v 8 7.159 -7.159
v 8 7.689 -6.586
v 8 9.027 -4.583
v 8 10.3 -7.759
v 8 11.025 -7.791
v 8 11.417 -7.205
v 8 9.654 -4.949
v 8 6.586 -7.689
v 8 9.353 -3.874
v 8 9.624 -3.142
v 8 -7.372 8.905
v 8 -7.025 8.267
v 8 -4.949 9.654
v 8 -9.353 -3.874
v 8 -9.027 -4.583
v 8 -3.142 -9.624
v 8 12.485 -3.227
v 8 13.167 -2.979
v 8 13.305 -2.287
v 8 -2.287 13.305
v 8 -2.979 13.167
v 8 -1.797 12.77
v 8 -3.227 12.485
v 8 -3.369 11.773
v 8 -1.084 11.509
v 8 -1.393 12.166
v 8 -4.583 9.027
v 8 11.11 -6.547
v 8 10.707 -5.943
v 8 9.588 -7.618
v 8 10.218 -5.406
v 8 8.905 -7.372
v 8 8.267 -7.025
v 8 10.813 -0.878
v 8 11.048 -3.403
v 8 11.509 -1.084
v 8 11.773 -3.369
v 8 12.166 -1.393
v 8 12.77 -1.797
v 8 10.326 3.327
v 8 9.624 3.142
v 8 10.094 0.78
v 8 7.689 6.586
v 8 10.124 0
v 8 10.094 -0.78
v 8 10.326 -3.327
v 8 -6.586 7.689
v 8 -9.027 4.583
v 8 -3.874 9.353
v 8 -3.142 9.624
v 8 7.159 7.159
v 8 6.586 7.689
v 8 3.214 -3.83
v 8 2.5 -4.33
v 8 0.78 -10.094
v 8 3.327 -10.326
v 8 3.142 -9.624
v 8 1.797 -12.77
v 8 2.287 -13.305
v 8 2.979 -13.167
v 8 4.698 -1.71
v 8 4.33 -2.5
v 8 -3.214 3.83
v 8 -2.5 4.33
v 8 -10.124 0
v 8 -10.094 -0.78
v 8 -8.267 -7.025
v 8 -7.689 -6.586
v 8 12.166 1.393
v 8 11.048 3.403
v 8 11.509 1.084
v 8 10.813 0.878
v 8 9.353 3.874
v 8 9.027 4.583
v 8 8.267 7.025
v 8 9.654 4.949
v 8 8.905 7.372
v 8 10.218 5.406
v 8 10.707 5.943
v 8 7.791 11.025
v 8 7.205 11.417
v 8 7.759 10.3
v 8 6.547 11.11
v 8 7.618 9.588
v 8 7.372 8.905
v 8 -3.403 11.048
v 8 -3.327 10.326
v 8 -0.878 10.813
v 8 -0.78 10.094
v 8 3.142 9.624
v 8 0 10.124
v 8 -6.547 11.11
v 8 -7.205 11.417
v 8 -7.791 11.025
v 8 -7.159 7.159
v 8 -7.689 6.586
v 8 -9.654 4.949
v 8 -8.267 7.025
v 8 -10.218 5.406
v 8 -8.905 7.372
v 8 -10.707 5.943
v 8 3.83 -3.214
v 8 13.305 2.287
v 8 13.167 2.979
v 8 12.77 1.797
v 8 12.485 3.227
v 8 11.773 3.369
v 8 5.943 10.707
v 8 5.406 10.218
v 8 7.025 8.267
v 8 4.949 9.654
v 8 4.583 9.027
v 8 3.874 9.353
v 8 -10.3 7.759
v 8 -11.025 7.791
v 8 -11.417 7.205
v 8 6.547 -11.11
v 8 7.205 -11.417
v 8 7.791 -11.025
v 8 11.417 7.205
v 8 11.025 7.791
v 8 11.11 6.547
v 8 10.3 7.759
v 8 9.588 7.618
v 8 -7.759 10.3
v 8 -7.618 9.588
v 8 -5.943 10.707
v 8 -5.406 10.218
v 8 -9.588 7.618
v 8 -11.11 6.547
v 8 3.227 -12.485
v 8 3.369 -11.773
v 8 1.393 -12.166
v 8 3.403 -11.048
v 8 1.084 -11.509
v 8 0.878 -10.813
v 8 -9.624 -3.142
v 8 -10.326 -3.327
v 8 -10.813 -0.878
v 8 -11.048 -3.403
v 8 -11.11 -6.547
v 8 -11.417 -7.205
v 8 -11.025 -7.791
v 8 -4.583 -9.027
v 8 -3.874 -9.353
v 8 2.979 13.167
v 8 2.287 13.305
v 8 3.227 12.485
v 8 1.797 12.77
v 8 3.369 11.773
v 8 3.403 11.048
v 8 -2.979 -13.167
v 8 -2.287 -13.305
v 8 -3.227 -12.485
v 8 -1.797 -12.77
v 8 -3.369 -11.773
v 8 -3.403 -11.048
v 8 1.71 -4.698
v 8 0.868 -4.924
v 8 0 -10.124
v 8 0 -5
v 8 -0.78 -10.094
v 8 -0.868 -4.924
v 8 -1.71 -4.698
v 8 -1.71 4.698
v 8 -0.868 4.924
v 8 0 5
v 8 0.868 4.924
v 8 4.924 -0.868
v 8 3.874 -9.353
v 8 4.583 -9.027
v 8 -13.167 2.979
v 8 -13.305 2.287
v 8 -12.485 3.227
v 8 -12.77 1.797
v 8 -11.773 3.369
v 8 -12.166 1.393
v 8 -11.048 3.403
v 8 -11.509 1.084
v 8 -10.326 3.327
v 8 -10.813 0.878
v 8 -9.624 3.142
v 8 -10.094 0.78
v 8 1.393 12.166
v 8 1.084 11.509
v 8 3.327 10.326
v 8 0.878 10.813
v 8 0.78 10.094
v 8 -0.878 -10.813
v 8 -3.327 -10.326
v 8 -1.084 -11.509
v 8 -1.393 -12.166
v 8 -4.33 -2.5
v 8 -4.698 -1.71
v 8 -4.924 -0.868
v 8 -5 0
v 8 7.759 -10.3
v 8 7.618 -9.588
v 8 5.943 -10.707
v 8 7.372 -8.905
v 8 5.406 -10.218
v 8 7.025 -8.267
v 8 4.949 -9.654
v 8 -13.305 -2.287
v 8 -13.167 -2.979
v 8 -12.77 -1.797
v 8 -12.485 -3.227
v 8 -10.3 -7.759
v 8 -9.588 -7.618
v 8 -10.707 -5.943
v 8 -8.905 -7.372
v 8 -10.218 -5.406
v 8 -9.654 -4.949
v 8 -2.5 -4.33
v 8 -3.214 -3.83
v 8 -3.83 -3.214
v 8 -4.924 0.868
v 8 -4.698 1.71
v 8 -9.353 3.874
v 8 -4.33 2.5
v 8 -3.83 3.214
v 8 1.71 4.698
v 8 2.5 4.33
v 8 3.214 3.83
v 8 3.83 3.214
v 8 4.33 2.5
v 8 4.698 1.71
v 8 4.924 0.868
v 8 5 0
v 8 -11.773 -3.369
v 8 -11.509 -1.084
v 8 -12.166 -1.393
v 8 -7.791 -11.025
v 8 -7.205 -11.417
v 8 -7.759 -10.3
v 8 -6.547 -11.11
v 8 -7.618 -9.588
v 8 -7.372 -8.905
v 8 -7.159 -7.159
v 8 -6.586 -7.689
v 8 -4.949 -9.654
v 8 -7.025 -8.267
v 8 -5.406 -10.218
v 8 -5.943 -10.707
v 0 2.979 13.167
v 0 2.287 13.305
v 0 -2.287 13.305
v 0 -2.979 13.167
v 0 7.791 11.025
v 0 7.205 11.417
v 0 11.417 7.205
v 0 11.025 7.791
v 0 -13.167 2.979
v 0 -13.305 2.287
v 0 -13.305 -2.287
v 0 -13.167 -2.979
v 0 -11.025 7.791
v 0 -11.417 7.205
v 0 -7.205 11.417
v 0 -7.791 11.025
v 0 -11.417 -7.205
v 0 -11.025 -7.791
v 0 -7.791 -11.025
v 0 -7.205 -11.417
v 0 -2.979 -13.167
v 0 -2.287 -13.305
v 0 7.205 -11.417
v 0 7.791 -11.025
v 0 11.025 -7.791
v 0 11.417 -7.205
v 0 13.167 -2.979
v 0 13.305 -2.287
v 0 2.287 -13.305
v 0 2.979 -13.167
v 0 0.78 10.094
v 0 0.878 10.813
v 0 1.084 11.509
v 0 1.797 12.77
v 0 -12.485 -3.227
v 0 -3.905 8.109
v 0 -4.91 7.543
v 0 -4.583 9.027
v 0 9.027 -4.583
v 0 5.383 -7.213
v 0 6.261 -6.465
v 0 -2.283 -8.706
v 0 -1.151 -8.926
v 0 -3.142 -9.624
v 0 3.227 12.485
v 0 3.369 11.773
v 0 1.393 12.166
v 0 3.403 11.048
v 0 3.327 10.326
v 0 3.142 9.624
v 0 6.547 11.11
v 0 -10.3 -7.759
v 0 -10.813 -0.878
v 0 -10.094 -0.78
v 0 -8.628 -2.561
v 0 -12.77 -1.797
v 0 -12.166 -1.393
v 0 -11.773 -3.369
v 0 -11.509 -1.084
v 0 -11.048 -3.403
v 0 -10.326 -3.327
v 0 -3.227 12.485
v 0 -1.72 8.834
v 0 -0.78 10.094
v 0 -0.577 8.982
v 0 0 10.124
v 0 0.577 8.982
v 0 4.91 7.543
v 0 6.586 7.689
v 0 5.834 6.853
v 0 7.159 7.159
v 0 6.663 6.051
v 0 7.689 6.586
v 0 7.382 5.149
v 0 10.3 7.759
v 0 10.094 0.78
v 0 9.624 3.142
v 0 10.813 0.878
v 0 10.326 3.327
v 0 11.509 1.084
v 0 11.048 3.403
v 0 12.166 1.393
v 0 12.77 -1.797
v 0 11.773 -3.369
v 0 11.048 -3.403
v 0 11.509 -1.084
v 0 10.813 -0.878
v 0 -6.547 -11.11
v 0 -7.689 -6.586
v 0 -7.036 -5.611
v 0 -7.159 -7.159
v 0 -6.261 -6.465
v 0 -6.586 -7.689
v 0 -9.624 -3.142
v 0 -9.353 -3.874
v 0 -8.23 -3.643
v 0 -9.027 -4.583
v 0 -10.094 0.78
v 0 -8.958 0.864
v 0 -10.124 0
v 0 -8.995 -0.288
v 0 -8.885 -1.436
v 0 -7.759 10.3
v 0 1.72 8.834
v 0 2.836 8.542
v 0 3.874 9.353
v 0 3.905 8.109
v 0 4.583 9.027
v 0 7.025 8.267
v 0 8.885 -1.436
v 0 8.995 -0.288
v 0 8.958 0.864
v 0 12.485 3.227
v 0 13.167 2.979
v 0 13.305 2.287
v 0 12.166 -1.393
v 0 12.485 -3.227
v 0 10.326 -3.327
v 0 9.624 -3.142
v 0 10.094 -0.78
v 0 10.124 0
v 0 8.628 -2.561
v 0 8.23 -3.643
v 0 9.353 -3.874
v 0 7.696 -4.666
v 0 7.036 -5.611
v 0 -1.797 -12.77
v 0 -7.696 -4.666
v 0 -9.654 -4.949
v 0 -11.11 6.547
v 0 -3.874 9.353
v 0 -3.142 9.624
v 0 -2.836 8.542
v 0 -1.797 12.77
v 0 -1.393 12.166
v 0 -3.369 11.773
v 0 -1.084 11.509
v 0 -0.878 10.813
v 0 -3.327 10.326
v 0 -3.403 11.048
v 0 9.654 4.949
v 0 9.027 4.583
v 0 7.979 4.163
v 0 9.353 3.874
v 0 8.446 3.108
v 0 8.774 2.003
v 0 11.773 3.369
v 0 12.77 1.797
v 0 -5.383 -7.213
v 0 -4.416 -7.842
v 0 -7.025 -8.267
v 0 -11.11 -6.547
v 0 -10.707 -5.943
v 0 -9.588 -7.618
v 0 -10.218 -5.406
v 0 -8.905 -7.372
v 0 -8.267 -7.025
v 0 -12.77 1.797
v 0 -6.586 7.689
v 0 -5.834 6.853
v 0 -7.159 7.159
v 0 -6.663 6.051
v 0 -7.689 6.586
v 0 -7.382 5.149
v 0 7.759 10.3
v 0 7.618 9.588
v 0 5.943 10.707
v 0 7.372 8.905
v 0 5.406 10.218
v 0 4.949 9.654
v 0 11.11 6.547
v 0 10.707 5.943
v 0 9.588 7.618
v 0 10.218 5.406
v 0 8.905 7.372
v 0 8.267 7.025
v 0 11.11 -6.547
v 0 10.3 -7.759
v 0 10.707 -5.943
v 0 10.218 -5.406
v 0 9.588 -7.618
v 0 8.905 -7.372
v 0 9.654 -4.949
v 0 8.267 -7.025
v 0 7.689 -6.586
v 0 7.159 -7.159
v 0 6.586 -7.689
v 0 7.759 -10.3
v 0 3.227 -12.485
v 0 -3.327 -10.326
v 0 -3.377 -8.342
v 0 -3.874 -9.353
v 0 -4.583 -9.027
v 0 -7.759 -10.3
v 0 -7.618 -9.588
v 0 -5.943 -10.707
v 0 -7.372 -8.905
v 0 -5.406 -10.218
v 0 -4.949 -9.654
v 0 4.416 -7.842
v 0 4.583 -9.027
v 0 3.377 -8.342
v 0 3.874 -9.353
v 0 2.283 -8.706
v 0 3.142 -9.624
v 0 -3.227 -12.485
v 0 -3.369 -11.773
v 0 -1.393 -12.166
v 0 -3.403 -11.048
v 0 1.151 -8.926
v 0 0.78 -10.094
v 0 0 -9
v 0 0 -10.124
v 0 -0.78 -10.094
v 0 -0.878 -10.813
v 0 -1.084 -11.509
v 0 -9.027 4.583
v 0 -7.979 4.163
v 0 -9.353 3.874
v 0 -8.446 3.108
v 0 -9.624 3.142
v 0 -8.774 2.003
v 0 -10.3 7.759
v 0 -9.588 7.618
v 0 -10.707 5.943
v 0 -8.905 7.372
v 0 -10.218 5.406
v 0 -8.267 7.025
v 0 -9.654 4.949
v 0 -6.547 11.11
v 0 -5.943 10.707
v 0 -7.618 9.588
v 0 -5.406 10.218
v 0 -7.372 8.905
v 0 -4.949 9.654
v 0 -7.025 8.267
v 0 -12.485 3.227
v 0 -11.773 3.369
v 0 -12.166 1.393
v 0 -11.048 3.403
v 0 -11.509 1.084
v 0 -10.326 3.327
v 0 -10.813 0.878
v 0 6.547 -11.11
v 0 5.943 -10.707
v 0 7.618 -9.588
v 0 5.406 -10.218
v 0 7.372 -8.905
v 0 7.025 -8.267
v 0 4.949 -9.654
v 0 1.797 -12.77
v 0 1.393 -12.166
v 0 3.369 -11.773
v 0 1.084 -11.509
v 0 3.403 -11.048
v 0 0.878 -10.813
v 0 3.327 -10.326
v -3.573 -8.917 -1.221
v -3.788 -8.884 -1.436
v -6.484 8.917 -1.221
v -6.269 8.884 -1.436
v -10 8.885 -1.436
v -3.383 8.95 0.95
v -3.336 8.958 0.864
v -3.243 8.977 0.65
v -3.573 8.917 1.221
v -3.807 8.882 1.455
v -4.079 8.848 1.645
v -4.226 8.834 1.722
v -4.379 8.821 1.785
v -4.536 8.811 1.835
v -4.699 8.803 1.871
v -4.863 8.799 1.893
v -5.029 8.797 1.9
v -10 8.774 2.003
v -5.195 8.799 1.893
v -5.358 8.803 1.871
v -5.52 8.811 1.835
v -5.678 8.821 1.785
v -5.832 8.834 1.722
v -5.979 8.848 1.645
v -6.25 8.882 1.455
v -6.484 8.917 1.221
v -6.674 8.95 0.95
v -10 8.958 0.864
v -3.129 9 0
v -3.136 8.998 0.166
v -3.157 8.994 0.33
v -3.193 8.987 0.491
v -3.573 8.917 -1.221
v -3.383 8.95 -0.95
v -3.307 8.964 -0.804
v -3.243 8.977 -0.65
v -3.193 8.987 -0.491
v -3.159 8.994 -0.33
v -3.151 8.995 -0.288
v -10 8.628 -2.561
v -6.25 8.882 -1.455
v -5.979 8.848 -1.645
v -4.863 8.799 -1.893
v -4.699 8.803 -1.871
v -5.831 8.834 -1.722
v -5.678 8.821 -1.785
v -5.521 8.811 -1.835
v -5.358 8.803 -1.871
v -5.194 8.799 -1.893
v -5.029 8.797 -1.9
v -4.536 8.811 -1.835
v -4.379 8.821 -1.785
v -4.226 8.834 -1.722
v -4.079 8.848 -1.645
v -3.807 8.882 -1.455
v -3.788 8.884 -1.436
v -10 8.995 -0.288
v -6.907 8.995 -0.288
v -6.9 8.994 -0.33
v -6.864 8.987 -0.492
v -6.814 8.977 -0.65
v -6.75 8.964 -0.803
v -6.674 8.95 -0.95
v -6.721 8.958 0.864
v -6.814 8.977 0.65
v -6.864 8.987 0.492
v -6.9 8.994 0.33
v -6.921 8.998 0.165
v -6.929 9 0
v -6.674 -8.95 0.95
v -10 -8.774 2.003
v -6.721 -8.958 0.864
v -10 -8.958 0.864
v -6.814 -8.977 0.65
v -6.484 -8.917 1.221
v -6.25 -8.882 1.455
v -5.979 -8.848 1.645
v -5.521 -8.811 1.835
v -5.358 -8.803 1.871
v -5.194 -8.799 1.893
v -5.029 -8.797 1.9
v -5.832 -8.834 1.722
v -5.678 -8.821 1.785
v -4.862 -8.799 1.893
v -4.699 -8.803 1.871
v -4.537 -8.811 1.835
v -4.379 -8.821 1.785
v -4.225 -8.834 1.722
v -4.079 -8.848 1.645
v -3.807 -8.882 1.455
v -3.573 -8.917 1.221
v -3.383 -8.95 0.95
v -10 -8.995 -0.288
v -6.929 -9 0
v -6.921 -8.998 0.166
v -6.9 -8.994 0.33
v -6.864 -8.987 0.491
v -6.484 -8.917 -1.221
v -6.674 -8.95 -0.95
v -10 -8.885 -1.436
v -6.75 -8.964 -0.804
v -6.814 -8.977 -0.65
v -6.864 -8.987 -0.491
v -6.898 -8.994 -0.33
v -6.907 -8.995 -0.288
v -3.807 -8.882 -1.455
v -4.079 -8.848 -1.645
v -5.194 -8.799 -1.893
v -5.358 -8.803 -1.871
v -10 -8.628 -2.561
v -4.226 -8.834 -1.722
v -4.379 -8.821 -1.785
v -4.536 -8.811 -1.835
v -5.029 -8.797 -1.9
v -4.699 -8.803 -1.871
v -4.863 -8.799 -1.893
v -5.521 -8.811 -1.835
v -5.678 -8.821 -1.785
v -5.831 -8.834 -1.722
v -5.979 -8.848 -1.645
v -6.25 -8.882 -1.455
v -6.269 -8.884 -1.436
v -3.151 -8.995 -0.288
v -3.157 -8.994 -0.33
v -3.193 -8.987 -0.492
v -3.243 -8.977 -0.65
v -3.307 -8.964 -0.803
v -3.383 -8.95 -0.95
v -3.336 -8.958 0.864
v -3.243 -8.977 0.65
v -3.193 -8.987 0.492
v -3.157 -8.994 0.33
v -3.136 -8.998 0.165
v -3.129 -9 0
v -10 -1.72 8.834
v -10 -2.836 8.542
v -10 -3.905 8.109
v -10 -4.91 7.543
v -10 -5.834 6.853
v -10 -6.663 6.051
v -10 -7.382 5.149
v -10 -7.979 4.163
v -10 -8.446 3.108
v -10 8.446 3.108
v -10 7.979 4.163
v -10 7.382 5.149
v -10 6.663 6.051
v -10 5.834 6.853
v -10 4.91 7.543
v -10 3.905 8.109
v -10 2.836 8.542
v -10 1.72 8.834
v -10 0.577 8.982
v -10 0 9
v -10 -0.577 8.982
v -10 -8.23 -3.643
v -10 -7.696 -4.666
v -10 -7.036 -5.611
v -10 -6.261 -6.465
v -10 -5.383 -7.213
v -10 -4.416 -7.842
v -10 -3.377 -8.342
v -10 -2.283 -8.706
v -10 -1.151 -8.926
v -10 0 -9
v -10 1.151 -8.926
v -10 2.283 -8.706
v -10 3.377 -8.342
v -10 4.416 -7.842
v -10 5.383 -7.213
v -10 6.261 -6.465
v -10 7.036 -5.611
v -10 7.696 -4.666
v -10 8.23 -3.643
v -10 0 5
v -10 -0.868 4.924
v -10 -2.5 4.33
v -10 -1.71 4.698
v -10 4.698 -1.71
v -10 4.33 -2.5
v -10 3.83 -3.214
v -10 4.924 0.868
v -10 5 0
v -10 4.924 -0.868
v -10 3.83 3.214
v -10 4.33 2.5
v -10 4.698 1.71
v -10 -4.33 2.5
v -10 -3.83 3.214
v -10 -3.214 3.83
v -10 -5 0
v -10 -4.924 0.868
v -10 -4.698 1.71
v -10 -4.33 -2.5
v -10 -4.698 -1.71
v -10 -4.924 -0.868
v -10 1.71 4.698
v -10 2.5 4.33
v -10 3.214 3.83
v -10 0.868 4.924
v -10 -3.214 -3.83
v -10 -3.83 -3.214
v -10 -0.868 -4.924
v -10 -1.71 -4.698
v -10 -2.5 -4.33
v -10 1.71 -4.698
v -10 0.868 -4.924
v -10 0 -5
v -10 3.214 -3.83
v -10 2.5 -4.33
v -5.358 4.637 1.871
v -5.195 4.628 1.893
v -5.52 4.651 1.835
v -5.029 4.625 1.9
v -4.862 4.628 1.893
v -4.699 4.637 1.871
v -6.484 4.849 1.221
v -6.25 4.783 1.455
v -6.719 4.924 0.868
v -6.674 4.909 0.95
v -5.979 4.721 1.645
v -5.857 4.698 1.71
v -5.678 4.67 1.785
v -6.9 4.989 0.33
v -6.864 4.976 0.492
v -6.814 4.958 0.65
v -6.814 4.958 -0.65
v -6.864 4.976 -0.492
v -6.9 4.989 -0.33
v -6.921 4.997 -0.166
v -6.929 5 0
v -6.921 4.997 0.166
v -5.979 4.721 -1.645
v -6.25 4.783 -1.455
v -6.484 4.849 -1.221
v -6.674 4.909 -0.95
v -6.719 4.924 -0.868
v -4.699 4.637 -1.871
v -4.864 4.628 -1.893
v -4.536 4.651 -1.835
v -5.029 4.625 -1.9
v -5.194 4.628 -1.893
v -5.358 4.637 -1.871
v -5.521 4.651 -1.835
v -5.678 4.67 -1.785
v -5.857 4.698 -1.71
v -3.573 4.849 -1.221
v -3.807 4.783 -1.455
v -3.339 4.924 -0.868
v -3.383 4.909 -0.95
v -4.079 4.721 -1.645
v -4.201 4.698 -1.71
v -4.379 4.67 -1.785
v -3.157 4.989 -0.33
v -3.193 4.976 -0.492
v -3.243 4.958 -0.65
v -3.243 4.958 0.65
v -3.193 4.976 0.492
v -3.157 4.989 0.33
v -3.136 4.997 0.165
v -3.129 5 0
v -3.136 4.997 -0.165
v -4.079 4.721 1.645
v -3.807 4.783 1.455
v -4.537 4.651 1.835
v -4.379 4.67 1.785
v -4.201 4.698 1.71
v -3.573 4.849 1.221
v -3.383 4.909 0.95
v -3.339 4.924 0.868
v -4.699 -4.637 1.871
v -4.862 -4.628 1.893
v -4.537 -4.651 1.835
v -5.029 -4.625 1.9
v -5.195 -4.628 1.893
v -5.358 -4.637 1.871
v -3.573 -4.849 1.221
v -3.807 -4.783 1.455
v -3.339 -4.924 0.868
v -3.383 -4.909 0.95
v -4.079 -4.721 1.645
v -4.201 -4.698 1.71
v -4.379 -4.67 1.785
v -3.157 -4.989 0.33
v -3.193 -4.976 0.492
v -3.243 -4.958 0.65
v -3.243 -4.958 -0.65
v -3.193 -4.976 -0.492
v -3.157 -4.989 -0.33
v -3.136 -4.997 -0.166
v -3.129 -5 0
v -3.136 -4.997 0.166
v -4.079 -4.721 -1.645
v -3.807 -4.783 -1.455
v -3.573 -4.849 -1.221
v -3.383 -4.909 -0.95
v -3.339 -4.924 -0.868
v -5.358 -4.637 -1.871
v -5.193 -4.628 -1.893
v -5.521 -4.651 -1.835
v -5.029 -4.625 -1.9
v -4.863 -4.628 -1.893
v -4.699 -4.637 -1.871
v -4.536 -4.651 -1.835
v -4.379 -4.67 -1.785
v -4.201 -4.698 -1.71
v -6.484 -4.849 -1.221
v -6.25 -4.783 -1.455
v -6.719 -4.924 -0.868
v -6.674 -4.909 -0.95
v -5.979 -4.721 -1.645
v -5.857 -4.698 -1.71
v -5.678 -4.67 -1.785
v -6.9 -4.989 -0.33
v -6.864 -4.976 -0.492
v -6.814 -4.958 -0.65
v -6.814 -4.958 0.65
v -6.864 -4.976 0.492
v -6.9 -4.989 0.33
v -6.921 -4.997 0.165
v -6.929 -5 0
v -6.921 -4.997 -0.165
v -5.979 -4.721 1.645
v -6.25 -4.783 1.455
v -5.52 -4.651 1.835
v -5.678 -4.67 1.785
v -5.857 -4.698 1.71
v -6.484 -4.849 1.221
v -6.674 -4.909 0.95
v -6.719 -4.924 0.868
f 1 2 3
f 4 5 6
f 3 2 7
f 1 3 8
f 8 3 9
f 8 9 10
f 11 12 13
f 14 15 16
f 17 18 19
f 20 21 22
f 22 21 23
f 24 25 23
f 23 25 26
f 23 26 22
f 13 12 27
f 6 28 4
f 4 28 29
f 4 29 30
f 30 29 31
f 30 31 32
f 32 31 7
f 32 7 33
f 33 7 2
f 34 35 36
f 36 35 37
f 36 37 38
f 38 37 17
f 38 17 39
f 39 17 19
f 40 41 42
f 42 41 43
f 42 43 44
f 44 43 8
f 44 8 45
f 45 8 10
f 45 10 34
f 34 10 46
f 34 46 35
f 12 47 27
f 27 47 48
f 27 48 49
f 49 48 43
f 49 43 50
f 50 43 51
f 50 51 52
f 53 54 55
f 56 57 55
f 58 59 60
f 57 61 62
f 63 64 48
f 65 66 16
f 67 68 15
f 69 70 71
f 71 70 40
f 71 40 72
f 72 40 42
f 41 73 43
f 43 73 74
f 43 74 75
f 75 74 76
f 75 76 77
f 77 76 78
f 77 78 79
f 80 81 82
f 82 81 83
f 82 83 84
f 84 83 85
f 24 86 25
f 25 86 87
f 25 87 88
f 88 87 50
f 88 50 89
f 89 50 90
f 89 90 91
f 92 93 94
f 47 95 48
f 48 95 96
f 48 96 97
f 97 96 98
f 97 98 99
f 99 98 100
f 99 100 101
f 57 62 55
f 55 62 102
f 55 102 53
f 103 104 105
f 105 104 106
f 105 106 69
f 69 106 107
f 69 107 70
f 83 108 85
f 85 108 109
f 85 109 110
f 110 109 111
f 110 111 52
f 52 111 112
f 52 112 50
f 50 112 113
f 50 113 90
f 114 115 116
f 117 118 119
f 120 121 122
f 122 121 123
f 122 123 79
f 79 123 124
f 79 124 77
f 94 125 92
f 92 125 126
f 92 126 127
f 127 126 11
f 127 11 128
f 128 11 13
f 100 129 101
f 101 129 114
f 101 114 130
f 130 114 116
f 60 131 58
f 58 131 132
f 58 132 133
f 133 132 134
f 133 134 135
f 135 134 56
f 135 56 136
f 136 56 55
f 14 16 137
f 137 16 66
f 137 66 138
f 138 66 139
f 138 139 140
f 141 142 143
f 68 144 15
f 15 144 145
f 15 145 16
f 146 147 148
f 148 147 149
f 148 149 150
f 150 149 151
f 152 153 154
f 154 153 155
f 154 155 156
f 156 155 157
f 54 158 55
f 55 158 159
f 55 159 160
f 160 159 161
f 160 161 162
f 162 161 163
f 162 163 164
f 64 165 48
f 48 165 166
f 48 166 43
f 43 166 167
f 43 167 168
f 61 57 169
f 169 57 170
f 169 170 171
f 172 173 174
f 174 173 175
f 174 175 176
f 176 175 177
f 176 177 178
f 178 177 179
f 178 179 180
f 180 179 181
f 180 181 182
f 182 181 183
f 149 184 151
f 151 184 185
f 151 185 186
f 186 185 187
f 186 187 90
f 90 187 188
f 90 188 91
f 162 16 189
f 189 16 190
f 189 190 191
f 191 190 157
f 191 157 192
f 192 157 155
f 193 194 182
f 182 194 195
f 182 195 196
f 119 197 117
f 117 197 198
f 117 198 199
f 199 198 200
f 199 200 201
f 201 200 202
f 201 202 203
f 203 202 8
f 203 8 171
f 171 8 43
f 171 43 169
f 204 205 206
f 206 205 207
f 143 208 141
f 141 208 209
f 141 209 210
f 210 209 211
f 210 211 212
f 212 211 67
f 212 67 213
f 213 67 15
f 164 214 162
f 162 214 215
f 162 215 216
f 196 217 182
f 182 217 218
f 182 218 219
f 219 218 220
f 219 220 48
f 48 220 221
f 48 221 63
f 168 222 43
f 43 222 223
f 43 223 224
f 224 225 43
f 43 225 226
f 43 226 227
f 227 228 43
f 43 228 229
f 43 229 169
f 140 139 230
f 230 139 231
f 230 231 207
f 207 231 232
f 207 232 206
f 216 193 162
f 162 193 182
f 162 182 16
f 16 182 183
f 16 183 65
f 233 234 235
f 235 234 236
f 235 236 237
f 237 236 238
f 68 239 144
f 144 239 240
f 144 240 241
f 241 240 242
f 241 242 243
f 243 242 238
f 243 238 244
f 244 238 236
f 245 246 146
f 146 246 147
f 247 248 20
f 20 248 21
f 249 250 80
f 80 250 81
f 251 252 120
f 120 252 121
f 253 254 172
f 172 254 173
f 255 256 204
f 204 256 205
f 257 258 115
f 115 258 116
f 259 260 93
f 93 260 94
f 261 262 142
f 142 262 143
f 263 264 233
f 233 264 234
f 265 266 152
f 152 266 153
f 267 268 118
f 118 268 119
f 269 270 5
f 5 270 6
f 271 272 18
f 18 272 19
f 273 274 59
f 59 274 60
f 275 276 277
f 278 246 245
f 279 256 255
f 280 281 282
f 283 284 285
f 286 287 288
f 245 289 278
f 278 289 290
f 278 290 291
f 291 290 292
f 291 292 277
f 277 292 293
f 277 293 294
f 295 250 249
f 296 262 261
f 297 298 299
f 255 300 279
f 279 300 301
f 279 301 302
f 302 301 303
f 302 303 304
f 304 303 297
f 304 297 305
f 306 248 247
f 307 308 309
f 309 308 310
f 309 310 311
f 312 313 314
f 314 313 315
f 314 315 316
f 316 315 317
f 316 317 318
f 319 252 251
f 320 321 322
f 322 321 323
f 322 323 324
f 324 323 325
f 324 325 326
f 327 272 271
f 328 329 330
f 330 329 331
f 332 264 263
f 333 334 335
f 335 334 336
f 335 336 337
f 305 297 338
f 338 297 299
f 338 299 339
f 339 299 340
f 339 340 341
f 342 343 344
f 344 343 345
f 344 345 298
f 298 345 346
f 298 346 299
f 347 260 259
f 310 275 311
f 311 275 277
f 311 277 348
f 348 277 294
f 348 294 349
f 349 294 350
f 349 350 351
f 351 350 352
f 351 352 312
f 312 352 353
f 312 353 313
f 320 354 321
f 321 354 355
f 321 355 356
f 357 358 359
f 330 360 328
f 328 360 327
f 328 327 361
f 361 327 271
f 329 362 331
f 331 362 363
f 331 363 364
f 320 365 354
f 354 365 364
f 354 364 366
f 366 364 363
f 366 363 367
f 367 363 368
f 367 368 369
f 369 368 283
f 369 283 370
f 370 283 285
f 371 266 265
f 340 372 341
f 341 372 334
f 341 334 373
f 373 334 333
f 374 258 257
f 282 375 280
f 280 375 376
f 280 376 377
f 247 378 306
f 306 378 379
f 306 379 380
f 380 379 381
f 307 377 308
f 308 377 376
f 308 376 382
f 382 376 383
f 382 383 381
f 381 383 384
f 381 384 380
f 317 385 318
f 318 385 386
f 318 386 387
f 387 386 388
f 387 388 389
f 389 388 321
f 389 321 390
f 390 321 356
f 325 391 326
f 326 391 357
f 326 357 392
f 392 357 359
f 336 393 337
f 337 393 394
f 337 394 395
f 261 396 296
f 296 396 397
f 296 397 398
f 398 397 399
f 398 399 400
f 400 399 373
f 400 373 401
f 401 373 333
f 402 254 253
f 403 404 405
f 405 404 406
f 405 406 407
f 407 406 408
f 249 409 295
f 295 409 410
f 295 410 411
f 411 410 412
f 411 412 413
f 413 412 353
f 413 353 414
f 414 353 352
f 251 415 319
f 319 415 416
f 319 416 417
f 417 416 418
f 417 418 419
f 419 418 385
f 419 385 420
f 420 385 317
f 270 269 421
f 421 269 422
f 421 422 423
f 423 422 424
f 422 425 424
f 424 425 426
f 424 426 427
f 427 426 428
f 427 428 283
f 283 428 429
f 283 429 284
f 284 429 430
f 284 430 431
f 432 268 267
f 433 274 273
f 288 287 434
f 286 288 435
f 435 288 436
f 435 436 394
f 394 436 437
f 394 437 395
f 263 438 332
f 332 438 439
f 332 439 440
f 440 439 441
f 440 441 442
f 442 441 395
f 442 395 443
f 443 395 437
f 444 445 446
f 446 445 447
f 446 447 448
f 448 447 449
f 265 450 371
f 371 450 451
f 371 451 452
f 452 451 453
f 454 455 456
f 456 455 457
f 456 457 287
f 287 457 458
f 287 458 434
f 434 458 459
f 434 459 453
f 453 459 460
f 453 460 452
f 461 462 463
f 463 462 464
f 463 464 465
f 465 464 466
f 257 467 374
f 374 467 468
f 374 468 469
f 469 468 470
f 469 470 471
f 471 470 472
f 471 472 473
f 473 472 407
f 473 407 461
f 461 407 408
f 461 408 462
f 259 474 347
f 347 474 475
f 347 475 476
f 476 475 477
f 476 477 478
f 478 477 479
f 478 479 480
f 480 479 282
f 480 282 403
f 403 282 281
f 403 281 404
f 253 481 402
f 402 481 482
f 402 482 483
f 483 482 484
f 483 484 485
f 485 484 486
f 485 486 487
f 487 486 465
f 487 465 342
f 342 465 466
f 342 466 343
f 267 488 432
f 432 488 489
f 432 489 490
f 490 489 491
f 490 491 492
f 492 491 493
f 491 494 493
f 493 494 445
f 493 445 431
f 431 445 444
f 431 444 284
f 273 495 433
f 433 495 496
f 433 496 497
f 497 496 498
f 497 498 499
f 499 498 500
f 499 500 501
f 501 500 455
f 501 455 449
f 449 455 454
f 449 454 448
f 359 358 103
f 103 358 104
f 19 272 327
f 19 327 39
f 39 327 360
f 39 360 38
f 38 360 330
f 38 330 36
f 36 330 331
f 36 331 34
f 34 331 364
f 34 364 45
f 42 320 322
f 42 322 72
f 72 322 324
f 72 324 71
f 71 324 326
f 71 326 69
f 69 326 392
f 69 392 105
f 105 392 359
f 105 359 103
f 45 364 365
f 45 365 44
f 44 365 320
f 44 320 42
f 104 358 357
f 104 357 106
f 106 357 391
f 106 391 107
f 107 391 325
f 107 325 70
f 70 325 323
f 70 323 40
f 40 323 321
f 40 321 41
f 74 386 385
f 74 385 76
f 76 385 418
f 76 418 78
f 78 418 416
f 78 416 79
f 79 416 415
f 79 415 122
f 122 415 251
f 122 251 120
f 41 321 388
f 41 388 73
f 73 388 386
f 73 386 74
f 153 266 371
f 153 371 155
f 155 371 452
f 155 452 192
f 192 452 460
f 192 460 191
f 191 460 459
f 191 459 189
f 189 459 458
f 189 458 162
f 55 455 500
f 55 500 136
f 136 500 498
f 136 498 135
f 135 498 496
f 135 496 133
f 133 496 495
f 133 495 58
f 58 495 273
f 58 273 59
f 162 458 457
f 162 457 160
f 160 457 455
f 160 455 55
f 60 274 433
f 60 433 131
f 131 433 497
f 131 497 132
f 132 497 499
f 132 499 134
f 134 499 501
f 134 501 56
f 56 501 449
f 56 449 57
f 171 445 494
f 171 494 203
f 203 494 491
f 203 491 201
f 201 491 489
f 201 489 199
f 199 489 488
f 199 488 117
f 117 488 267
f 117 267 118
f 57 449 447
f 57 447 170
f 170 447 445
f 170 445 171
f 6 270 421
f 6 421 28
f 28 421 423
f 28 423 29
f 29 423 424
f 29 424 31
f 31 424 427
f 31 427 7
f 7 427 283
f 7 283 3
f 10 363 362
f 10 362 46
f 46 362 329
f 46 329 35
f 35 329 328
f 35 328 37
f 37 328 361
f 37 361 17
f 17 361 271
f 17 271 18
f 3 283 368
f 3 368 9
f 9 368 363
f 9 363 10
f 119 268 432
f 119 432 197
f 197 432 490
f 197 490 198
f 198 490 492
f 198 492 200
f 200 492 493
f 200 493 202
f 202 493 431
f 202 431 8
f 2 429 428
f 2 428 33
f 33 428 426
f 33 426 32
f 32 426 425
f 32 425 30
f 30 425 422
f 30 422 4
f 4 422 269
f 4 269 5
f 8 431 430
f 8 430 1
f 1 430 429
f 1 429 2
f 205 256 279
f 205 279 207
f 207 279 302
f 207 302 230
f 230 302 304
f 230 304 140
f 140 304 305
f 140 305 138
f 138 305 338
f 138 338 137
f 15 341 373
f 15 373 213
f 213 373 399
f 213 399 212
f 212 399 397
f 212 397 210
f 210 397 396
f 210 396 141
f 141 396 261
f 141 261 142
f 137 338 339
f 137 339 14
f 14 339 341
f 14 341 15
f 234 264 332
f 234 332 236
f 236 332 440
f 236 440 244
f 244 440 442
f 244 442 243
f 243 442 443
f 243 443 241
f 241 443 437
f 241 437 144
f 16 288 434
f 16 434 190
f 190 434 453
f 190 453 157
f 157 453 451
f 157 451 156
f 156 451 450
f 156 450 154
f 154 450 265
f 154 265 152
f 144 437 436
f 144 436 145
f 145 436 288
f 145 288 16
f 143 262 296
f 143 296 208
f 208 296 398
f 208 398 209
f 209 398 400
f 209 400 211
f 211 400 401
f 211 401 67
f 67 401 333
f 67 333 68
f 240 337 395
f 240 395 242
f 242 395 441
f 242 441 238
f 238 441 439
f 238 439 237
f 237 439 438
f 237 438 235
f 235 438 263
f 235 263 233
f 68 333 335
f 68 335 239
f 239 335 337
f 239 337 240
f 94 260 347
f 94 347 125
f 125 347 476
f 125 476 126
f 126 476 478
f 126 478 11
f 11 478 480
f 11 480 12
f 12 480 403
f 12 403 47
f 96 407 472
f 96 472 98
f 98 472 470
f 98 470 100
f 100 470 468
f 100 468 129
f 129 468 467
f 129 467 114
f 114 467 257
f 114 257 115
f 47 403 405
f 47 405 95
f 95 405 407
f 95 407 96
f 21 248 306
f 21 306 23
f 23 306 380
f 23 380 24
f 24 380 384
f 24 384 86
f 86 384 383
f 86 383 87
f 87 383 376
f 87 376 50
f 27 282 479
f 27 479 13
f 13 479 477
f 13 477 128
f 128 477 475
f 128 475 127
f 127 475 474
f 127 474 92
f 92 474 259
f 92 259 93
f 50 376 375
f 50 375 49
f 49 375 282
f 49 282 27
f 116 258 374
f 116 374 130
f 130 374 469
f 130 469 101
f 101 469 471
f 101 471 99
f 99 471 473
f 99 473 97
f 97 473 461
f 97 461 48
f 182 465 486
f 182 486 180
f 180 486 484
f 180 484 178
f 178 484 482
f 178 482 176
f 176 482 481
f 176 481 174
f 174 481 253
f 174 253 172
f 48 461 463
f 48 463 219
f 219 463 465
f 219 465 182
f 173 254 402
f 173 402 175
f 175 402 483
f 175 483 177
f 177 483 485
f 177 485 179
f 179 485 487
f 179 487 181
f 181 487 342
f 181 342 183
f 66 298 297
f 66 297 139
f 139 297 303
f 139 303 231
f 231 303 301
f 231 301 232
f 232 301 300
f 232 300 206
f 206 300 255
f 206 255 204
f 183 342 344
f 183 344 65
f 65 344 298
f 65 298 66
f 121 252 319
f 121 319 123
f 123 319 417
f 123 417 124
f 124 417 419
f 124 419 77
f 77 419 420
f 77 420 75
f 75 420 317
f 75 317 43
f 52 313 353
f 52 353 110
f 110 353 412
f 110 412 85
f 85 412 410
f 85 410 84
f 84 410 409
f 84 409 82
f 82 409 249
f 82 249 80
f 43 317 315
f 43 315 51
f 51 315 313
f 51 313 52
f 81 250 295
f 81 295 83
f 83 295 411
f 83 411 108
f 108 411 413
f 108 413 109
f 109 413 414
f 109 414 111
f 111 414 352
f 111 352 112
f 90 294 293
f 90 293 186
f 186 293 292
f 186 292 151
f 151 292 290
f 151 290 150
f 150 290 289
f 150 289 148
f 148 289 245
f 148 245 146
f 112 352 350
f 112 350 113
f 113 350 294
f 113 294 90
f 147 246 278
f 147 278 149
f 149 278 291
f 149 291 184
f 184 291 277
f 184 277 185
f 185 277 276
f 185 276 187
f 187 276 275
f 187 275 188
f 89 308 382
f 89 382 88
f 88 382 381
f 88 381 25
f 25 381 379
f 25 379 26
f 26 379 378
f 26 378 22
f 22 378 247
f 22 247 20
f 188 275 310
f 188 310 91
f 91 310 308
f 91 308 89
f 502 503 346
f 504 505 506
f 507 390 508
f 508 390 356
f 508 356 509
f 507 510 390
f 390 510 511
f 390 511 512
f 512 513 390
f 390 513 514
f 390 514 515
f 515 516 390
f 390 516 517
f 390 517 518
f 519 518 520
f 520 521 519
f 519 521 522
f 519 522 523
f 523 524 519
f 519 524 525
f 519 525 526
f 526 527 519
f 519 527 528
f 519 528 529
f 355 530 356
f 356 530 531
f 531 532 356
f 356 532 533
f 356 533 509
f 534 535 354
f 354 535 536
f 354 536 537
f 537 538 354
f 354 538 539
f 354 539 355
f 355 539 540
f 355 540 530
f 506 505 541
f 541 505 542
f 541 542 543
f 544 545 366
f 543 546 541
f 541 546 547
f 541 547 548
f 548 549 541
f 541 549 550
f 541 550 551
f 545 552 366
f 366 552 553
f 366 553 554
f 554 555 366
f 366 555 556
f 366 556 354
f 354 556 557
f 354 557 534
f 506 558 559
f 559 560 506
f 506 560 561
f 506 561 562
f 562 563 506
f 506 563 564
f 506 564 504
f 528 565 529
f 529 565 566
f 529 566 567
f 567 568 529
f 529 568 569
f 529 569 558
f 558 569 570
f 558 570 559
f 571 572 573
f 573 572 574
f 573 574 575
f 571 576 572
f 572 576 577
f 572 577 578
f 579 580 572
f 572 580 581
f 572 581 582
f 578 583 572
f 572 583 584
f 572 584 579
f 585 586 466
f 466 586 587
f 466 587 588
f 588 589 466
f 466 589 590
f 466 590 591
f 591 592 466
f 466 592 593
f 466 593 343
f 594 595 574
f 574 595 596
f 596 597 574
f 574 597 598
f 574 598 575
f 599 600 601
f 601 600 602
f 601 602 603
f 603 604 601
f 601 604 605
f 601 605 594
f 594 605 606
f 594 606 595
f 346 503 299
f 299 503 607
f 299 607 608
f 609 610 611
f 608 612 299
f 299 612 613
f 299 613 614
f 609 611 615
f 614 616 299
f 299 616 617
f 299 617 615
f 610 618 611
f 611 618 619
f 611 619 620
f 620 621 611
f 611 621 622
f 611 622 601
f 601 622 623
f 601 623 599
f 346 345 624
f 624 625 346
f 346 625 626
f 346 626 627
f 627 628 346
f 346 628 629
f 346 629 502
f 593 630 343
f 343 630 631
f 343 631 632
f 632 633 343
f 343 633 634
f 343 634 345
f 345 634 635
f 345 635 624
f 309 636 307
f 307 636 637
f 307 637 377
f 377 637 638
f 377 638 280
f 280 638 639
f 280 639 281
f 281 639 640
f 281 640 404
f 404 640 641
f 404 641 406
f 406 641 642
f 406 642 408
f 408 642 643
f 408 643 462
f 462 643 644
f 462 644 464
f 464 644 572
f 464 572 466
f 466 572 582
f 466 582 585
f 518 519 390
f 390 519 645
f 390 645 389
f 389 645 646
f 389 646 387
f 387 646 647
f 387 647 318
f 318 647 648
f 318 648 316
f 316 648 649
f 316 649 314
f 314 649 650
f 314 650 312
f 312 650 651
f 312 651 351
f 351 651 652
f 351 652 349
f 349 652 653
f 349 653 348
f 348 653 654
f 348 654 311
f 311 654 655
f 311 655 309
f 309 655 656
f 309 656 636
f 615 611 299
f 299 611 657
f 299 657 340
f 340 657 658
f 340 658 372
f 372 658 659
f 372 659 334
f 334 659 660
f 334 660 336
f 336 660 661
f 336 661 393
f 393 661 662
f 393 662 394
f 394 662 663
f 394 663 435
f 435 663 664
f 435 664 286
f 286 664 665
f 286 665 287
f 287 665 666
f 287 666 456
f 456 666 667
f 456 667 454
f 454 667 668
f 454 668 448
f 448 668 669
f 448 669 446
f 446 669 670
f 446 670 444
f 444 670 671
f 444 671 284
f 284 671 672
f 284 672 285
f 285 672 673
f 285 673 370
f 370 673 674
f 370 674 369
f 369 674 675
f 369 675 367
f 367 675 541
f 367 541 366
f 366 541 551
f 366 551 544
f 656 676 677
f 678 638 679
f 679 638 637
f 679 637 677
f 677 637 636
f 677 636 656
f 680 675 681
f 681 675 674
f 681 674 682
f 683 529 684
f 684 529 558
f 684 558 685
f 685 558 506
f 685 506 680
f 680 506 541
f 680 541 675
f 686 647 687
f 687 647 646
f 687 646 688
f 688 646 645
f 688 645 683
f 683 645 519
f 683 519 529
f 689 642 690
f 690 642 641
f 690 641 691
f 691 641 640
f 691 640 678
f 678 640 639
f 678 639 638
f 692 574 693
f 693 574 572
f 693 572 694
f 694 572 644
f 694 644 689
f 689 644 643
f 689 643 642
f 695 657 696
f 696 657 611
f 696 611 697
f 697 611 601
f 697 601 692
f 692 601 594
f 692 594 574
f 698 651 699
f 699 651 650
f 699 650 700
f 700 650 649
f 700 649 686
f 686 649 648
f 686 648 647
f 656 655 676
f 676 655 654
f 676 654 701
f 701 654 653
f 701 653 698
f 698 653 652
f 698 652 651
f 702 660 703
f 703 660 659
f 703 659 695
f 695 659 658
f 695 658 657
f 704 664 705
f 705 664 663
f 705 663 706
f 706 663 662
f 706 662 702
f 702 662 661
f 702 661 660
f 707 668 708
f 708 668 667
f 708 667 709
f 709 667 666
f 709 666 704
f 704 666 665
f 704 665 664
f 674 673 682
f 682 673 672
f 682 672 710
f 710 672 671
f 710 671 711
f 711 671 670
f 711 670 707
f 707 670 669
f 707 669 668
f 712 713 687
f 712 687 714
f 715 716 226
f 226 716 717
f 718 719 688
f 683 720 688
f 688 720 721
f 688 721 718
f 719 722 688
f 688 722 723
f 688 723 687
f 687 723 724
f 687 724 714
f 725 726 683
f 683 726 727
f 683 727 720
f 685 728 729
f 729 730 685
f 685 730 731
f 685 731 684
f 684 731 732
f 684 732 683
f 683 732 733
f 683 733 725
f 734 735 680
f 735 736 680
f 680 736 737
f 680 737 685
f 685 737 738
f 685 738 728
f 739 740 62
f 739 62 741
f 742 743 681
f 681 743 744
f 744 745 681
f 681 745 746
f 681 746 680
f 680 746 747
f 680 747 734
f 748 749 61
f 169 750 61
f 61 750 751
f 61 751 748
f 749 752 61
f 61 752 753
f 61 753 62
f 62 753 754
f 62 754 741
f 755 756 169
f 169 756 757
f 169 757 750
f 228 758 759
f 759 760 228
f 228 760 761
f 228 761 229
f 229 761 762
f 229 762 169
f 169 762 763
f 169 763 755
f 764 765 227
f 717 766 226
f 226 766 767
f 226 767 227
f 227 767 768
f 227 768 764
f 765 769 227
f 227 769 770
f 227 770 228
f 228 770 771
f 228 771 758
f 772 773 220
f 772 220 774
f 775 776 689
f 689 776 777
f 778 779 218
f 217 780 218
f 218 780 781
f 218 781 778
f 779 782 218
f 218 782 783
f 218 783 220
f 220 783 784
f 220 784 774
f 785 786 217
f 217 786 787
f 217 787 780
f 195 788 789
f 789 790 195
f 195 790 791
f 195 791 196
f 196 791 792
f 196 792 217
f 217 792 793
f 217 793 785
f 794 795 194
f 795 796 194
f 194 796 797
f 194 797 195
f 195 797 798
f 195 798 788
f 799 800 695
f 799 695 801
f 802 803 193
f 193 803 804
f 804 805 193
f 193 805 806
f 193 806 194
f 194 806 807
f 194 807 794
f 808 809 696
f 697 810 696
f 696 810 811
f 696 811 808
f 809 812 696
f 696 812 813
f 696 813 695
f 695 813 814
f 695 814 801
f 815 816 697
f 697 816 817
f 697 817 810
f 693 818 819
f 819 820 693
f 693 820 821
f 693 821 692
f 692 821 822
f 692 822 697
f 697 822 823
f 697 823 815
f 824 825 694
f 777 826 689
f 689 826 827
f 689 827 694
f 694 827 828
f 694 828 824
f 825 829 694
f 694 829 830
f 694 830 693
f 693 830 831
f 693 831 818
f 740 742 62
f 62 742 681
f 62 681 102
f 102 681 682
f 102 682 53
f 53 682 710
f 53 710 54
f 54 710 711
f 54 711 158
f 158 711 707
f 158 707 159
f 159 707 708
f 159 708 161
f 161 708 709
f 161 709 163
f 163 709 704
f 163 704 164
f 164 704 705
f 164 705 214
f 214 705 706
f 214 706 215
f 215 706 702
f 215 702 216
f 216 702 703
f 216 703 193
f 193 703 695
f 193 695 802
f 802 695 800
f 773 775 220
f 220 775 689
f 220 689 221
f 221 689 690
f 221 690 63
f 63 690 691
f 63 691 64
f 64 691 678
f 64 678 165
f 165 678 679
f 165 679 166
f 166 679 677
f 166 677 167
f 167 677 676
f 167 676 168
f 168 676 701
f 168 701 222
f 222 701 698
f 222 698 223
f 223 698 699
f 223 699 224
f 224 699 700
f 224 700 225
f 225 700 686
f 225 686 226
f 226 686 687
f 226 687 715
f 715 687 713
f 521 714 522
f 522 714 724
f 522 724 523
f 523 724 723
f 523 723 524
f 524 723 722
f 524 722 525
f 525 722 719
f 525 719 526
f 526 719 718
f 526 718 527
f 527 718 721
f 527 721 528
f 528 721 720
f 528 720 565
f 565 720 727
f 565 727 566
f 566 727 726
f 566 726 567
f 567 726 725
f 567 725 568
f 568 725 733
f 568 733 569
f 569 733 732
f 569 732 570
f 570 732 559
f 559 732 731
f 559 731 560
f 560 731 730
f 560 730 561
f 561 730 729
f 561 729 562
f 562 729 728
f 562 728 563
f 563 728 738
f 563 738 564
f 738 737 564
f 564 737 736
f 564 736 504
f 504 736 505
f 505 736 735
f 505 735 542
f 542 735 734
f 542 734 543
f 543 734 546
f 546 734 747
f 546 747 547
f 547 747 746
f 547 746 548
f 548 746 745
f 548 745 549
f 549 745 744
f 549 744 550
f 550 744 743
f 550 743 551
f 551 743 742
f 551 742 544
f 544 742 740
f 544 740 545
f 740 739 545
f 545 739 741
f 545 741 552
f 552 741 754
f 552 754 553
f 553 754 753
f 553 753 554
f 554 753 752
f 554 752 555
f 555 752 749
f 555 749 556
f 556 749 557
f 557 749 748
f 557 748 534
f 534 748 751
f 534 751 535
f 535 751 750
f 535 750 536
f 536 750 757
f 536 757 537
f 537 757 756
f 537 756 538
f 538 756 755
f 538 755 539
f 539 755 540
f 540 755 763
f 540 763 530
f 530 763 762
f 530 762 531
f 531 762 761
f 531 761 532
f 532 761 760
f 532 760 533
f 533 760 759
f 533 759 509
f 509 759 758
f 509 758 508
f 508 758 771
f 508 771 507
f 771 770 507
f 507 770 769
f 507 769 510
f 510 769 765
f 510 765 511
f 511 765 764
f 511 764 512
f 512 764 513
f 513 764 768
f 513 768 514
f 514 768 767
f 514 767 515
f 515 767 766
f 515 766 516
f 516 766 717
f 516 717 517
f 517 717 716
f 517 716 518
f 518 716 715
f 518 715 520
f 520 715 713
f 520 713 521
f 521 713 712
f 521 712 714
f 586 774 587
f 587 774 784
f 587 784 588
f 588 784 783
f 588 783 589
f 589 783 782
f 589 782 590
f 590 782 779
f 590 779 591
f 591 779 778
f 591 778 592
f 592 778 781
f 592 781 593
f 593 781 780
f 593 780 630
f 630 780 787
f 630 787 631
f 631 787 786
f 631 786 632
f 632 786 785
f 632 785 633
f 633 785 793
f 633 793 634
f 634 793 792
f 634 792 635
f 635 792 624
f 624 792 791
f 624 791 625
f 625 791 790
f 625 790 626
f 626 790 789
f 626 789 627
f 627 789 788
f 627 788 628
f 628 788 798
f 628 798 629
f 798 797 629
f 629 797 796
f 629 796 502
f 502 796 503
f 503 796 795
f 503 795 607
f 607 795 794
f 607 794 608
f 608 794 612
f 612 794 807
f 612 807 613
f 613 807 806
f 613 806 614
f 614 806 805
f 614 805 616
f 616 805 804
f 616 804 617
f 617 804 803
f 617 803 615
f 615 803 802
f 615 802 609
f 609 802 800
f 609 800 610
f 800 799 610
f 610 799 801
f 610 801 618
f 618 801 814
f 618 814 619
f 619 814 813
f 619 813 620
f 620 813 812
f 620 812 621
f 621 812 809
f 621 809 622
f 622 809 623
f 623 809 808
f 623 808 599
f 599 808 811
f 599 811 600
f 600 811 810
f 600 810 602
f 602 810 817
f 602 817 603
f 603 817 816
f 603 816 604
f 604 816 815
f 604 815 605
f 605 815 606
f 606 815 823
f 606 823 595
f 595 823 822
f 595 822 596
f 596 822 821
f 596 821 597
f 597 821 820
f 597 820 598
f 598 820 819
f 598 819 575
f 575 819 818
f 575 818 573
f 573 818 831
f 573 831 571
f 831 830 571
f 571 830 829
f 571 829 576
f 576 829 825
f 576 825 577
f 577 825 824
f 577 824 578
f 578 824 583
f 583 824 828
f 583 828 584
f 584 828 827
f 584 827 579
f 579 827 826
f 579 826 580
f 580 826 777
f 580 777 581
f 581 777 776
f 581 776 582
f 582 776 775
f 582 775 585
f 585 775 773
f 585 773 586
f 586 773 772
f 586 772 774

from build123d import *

# Parameters (mm, degrees)
BASPROSKE_W              = 8
BASPROSKE_H              = 13.5
TOOTHCUT_DEPTH           = 21.700241544
TEETHCUTS_COUNT          = 16
TEETHCUTS_ANGLE          = 337.5
HUBNEAONESKE_R           = 9
HUBNEARONE_DEPTH         = 10.0000508
BORSKE_R                 = 5
BORE_DEPTH               = 18.0000508
CUT_EXTRUDE_1_DEPTH      = 22.308194049
CUT_EXTRUDE_1_DEPTH_BACK = 22.308194049
SKETCH_1_R               = 1.9


with BuildPart() as part:
    # BasProSke → Base-Revolve (revolve)
    with BuildSketch(Plane(origin=(0, 0, 0), x_dir=(1, 0, 0), z_dir=(0, 1, 0)), mode=Mode.PRIVATE) as base_revolve_sk:
        with Locations((4, 6.75)):
            Rectangle(BASPROSKE_W, BASPROSKE_H)
    revolve(base_revolve_sk.sketch.rotate(Axis((-10, 0, 0), (1, 0, 0)), 180), axis=Axis((-10, 0, 0), (1, 0, 0)))

    # TooCutSke → ToothCut (cut, through all)
    with BuildSketch(Plane(origin=(0, 0, 0), x_dir=(0, 0, -1), z_dir=(1, 0, 0))):
        with BuildLine():
            ThreePointArc((0.779807897, 10.093922708), (0, 10.124), (-0.779807897, 10.093922708))
            ThreePointArc((-0.779807897, 10.093922708), (-1.232785697, 11.858156262), (-2.310463203, 13.326597651))
            ThreePointArc((-2.310463203, 13.326597651), (0, 13.5254), (2.310463203, 13.326597651))
            ThreePointArc((2.310463203, 13.326597651), (1.232785697, 11.858156262), (0.779807897, 10.093922708))
        make_face()
    toothcut = extrude(amount=TOOTHCUT_DEPTH, mode=Mode.SUBTRACT)

    # TeethCuts: ToothCut ×16 about axis
    teethcuts_axis = Axis((-10, 0, 0), (1, 0, 0))
    for i in range(1, TEETHCUTS_COUNT):
        add(toothcut.rotate(teethcuts_axis, i * TEETHCUTS_ANGLE / (TEETHCUTS_COUNT - 1)), mode=Mode.SUBTRACT)

    # HubNeaOneSke → HubNearOne (add)
    with BuildSketch(Plane.ZY):
        with Locations(Location((0, 0, 0), (0, 0, 180))):
            Circle(HUBNEAONESKE_R)
    extrude(amount=HUBNEARONE_DEPTH)

    # BorSke → Bore (cut, symmetric)
    with BuildSketch(Plane(origin=(0, 0, 0), x_dir=(0, 0, -1), z_dir=(1, 0, 0))):
        with Locations(Location((0, 0, 0), (0, 0, 180))):
            Circle(BORSKE_R)
    extrude(amount=BORE_DEPTH, both=True, mode=Mode.SUBTRACT)

    # 草图1 → 切除-拉伸1 (cut, two sides: drawn at the far end of the back side and taken through both)
    with BuildSketch(Plane(origin=(0, 0, 0), x_dir=(1, 0, 0), z_dir=(0, 1, 0)).offset(-CUT_EXTRUDE_1_DEPTH_BACK)):
        with Locations(Location((-5.028528168, 0, 0), (0, 0, 270))):
            Circle(SKETCH_1_R)
    extrude(amount=CUT_EXTRUDE_1_DEPTH + CUT_EXTRUDE_1_DEPTH_BACK, mode=Mode.SUBTRACT)


solid = part.part
